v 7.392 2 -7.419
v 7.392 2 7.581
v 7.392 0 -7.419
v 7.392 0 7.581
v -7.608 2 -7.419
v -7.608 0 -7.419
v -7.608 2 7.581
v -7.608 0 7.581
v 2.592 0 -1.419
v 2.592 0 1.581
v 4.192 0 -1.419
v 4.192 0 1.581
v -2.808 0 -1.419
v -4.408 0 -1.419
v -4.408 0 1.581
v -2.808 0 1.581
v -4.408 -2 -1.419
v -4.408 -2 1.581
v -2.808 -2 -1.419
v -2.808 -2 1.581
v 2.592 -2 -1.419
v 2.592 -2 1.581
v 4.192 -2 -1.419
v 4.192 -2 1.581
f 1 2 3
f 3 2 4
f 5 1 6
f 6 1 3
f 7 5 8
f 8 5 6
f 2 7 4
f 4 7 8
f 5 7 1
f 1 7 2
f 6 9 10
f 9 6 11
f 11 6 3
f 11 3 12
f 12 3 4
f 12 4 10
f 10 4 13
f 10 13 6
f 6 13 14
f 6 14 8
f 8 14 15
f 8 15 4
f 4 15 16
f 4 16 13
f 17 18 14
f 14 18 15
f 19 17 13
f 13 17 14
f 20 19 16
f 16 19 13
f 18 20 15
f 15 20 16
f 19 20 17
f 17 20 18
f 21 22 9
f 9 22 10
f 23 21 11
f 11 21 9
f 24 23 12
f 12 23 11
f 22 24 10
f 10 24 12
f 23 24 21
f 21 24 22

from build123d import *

# Parameters (mm, degrees)
SKETCH1_W           = 15
SKETCH1_H           = 15
BOSS_EXTRUDE1_DEPTH = 2
SKETCH4_W           = 1.6
SKETCH4_H           = 3
BOSS_EXTRUDE2_DEPTH = 2


with BuildPart() as part:
    # Sketch1 → Boss-Extrude1 (new body)
    with BuildSketch(Plane(origin=(0, 0, 0), x_dir=(1, 0, 0), z_dir=(0, 1, 0))):
        with Locations((-0.107629188, -0.080708285)):
            Rectangle(SKETCH1_W, SKETCH1_H)
    extrude(amount=BOSS_EXTRUDE1_DEPTH)

    # Sketch4 → Boss-Extrude2 (add)
    with BuildSketch(Plane(origin=(0, 0, 0), x_dir=(1, 0, 0), z_dir=(0, 1, 0))):
        with Locations((3.392370812, -0.080708285)):
            Rectangle(SKETCH4_W, SKETCH4_H)
        with Locations((-3.607629188, -0.080708285)):
            Rectangle(SKETCH4_W, SKETCH4_H)
    extrude(amount=-BOSS_EXTRUDE2_DEPTH)


solid = part.part
